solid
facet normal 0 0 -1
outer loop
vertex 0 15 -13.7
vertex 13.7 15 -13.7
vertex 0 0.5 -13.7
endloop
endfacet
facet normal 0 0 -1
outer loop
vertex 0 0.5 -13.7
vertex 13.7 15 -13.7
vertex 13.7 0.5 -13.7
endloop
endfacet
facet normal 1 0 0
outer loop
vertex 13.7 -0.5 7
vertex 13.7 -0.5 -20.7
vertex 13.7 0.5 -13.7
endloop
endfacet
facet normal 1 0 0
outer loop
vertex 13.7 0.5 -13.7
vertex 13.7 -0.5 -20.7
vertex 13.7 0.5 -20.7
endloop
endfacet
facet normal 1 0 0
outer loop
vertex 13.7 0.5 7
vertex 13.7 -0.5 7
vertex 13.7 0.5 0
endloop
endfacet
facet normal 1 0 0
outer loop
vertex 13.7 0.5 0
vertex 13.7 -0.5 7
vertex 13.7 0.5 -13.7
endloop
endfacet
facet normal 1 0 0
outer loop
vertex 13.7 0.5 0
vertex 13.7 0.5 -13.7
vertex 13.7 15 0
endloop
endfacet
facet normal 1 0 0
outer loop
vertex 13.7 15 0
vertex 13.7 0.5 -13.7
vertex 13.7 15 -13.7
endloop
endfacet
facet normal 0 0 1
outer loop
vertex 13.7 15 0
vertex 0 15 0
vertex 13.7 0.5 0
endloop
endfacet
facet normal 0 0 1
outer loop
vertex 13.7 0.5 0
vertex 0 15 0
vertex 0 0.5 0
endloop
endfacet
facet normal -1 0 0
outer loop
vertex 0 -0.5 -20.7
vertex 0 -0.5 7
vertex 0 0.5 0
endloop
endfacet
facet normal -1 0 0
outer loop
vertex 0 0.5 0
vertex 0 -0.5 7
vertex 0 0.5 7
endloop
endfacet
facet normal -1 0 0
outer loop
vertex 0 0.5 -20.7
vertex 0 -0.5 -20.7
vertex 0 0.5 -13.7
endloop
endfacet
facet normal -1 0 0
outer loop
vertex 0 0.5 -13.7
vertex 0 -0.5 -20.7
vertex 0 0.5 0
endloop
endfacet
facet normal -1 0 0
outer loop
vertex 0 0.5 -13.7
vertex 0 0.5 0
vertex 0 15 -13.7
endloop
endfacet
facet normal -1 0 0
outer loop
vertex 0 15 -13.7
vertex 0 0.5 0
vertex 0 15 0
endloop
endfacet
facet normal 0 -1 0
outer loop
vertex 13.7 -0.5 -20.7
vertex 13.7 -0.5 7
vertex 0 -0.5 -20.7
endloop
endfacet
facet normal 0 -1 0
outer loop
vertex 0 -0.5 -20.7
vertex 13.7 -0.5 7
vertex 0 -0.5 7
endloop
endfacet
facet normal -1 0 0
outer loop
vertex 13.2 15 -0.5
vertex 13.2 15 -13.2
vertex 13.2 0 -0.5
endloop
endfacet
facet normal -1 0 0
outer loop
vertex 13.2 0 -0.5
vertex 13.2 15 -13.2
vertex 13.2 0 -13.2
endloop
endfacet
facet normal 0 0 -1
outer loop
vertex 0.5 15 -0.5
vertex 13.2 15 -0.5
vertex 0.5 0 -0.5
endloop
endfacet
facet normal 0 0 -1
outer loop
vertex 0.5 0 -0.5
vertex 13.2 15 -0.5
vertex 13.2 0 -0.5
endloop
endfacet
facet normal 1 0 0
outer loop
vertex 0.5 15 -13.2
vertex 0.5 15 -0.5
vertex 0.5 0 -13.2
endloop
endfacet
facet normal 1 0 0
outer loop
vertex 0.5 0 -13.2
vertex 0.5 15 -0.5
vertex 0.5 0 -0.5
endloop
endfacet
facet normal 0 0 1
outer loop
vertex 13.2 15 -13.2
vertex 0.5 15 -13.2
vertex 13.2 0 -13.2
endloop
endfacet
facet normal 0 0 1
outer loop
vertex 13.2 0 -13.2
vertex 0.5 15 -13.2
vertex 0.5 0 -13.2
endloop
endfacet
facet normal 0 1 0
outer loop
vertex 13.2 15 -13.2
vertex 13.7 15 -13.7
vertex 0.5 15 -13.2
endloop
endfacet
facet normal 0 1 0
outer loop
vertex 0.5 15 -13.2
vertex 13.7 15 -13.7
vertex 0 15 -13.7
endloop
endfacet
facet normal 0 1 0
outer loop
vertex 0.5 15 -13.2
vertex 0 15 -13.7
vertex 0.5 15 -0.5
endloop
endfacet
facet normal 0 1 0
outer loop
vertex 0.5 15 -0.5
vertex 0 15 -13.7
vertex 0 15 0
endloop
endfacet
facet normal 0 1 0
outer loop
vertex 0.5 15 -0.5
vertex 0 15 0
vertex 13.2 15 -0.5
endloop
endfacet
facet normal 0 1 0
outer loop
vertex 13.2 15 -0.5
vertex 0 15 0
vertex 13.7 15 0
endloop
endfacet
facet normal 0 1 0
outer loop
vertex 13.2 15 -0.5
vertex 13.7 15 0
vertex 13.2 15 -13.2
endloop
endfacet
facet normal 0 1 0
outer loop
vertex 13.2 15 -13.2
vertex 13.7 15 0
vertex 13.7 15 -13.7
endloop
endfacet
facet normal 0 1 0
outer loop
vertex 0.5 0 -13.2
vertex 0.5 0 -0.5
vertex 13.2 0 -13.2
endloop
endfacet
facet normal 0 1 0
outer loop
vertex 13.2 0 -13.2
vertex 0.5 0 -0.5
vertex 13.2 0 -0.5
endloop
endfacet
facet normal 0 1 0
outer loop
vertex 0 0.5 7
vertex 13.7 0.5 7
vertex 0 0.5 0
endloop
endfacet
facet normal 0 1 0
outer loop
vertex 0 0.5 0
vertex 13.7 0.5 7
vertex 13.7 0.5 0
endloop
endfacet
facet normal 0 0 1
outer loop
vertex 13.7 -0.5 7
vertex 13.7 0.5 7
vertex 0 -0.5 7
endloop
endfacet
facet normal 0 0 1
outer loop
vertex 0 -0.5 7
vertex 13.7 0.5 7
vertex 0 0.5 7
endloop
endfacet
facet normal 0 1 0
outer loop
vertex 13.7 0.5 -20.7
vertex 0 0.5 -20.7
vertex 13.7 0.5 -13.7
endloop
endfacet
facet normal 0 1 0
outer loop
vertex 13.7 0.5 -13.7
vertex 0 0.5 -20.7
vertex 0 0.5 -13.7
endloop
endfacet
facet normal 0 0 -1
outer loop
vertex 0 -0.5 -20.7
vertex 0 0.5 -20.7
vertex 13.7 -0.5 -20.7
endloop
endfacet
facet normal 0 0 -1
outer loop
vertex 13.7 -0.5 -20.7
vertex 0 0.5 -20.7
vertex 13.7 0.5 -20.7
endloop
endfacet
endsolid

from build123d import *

# Parameters (mm, degrees)
SKETCH2_W           = 13.7
SKETCH2_H           = 13.7
BOSS_EXTRUDE2_DEPTH = 0.5
SKETCH2_4_W         = 13.7
SKETCH2_4_H         = 13.7
SKETCH2_4_W_2       = 12.7
SKETCH2_4_H_2       = 12.7
BOSS_EXTRUDE3_DEPTH = 15
SKETCH3_W           = 13.7
SKETCH3_H           = 1
BOSS_EXTRUDE4_DEPTH = 7
SKETCH4_W           = 13.7
SKETCH4_H           = 1
BOSS_EXTRUDE6_DEPTH = 7


with BuildPart() as part:
    # Sketch2 → Boss-Extrude2 (new body)
    with BuildSketch(Plane(origin=(0, 0, 0), x_dir=(1, 0, 0), z_dir=(0, 1, 0))):
        with Locations((6.85, 6.85)):
            Rectangle(SKETCH2_W, SKETCH2_H)
    extrude(amount=-BOSS_EXTRUDE2_DEPTH)

    # Sketch2<4> → Boss-Extrude3 (add)
    with BuildSketch(Plane(origin=(0, 0, 0), x_dir=(1, 0, 0), z_dir=(0, 1, 0))):
        with Locations((6.85, 6.85)):
            Rectangle(SKETCH2_4_W, SKETCH2_4_H)
        with Locations((6.85, 6.85)):
            Rectangle(SKETCH2_4_W_2, SKETCH2_4_H_2, mode=Mode.SUBTRACT)
    extrude(amount=BOSS_EXTRUDE3_DEPTH)

    # Sketch3 → Boss-Extrude4 (add)
    with BuildSketch(Plane.XY):
        with Locations((6.85, 0)):
            Rectangle(SKETCH3_W, SKETCH3_H)
    extrude(amount=BOSS_EXTRUDE4_DEPTH)

    # Sketch4 → Boss-Extrude6 (add)
    with BuildSketch(Plane(origin=(0, 0, -13.7), x_dir=(-1, 0, 0), z_dir=(0, 0, -1))):
        with Locations((-6.85, 0)):
            Rectangle(SKETCH4_W, SKETCH4_H)
    extrude(amount=BOSS_EXTRUDE6_DEPTH)


solid = part.part
